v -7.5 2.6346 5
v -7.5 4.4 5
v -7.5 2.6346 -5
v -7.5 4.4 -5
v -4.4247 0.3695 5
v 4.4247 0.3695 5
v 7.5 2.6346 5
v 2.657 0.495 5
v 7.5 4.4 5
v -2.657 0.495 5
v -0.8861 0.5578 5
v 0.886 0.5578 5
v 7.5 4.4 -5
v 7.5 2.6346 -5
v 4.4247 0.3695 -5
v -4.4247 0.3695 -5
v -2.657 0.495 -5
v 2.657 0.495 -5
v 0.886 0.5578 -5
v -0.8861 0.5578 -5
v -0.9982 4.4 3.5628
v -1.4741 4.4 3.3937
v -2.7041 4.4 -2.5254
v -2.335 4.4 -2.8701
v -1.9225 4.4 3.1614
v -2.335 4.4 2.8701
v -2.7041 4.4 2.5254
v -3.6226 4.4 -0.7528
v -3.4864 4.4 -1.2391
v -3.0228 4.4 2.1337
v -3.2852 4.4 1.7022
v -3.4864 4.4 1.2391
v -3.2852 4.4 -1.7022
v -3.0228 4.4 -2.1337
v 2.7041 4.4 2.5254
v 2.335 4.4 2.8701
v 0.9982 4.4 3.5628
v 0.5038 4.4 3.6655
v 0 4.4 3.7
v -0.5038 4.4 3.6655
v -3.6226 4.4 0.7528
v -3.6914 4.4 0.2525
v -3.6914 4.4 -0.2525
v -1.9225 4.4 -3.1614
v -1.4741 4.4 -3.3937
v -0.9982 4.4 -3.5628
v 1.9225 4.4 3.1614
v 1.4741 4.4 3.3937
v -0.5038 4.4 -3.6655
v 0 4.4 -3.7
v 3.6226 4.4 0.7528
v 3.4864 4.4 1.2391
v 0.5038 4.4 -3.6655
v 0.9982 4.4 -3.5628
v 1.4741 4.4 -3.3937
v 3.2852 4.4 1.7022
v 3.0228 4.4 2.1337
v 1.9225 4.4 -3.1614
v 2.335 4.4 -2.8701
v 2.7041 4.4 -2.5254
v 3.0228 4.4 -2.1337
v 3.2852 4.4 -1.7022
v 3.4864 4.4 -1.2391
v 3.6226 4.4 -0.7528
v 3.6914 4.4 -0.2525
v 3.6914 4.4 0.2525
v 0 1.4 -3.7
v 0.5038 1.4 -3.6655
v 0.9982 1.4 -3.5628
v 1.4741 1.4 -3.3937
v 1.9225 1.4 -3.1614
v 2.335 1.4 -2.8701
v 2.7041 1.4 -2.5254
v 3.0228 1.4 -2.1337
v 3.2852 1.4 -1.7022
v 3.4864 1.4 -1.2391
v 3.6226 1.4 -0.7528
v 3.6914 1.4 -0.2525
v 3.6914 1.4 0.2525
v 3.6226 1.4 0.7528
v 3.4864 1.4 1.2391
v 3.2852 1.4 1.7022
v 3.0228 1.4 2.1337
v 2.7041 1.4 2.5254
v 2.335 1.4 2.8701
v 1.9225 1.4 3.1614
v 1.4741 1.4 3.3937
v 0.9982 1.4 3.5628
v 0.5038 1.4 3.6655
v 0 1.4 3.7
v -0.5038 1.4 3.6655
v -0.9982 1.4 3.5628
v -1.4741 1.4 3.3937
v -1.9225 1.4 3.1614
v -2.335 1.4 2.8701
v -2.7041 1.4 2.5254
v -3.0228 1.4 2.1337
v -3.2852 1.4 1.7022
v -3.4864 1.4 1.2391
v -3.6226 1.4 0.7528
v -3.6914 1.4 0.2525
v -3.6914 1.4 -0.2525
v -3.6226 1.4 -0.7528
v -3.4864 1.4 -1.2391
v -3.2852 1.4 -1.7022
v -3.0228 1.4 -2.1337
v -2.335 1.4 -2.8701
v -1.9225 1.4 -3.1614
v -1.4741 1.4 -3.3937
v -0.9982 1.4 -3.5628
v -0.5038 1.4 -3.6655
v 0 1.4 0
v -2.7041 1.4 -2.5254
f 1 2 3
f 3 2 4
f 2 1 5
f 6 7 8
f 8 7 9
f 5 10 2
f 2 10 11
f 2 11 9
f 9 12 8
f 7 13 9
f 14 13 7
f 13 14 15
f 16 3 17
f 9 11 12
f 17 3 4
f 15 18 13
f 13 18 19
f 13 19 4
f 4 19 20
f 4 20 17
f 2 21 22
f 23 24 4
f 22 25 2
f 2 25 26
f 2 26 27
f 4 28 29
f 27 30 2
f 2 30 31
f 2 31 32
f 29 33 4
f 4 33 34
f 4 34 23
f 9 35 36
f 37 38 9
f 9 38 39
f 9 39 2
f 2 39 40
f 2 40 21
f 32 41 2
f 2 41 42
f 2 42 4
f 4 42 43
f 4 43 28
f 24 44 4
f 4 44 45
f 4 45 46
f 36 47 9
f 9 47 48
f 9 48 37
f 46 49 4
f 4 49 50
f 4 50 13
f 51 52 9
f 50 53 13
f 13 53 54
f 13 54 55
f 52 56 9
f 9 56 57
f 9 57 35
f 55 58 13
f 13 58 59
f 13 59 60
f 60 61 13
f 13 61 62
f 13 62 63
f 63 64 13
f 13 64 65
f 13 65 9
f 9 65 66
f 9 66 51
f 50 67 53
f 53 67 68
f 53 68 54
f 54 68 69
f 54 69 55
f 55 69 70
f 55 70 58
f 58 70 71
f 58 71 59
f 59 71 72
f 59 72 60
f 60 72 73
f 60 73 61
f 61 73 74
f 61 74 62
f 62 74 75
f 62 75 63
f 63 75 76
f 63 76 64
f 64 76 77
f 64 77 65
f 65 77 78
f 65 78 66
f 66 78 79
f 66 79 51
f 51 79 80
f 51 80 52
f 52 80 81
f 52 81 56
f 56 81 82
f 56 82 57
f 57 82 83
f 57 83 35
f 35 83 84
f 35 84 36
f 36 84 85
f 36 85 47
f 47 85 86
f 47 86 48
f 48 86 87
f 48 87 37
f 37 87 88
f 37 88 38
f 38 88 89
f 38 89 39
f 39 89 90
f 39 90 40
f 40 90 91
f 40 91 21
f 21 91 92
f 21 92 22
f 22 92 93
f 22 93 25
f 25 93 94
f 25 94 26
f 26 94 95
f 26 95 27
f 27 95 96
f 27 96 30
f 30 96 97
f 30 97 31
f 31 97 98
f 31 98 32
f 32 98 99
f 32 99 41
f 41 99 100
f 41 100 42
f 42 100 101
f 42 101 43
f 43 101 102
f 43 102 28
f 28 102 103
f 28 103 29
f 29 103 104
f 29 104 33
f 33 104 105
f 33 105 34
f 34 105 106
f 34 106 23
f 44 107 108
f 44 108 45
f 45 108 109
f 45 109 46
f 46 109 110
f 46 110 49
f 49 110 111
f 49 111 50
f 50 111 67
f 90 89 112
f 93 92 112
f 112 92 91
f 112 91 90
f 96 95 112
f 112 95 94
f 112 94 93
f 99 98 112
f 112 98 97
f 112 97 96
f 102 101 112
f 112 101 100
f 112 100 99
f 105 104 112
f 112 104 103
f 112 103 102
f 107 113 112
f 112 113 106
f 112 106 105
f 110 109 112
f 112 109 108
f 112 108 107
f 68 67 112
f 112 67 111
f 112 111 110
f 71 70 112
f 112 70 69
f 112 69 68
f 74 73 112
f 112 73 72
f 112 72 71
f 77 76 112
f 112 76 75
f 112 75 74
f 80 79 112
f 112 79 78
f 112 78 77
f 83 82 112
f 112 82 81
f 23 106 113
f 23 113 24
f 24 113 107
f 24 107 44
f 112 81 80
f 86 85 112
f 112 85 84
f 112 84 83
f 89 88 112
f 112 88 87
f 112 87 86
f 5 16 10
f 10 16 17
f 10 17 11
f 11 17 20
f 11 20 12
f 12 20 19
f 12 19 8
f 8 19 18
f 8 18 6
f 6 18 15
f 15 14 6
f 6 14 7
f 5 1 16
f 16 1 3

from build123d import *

# Parameters (mm, degrees)
SKETCH1_W           = 15
SKETCH1_H           = 10
BOSS_EXTRUDE1_DEPTH = 1.4
SKETCH2_W           = 15
SKETCH2_H           = 10
SKETCH2_R           = 3.7
BOSS_EXTRUDE2_DEPTH = 3
CUT_EXTRUDE2_DEPTH  = 14.251792332
CHAMFER1_SIZE       = 2.634615696


with BuildPart() as part:
    # Sketch1 → Boss-Extrude1 (new body)
    with BuildSketch(Plane(origin=(0, 0, 0), x_dir=(1, 0, 0), z_dir=(0, 1, 0))):
        Rectangle(SKETCH1_W, SKETCH1_H)
    extrude(amount=BOSS_EXTRUDE1_DEPTH)

    # Sketch2 → Boss-Extrude2 (add)
    with BuildSketch(Plane(origin=(0, 1.4, 0), x_dir=(1, 0, 0), z_dir=(0, 1, 0))):
        Rectangle(SKETCH2_W, SKETCH2_H)
        with Locations(Location((0, 0, 0), (0, 0, 270))):
            Circle(SKETCH2_R, mode=Mode.SUBTRACT)
    extrude(amount=BOSS_EXTRUDE2_DEPTH)

    # Sketch5 → Cut-Extrude2 (cut, through all)
    with BuildSketch(Plane(origin=(0, 0, -5), x_dir=(-1, 0, 0), z_dir=(0, 0, -1))):
        with BuildLine():
            Line((7.5, 0), (-7.5, 0))
            ThreePointArc((-7.5, 0), (0, 0.565700167), (7.5, 0))
        make_face()
    extrude(amount=-CUT_EXTRUDE2_DEPTH, mode=Mode.SUBTRACT)

    # Chamfer1
    # the kernel refuses this chamfer: 3, 2.634615696 mm, written as the material it takes off along each edge
    with BuildSketch(Plane(origin=(7.5, 0, -12.964818141), x_dir=(-0.9928577476807653, 0.11930420307046066, 0), z_dir=(0, 0, 1)), Plane(origin=(-7.5, 0, 12.964818141), x_dir=(0.9928577476807653, 0.1193042030704611, 0), z_dir=(0, 0, -1))) as chamfer1_piece_1:
        with BuildLine():
            Line((3.097426723, 0), (CHAMFER1_SIZE * 0.119304203085, -CHAMFER1_SIZE * 0.992857747804))
            Line((CHAMFER1_SIZE * 0.119304203085, -CHAMFER1_SIZE * 0.992857747804), (0, 0))
            ThreePointArc((0, 0), (1.592490504, -0.023971722), (3.097426723, 0))
        make_face()
    extrude(amount=25.929636281, mode=Mode.SUBTRACT)


solid = part.part
